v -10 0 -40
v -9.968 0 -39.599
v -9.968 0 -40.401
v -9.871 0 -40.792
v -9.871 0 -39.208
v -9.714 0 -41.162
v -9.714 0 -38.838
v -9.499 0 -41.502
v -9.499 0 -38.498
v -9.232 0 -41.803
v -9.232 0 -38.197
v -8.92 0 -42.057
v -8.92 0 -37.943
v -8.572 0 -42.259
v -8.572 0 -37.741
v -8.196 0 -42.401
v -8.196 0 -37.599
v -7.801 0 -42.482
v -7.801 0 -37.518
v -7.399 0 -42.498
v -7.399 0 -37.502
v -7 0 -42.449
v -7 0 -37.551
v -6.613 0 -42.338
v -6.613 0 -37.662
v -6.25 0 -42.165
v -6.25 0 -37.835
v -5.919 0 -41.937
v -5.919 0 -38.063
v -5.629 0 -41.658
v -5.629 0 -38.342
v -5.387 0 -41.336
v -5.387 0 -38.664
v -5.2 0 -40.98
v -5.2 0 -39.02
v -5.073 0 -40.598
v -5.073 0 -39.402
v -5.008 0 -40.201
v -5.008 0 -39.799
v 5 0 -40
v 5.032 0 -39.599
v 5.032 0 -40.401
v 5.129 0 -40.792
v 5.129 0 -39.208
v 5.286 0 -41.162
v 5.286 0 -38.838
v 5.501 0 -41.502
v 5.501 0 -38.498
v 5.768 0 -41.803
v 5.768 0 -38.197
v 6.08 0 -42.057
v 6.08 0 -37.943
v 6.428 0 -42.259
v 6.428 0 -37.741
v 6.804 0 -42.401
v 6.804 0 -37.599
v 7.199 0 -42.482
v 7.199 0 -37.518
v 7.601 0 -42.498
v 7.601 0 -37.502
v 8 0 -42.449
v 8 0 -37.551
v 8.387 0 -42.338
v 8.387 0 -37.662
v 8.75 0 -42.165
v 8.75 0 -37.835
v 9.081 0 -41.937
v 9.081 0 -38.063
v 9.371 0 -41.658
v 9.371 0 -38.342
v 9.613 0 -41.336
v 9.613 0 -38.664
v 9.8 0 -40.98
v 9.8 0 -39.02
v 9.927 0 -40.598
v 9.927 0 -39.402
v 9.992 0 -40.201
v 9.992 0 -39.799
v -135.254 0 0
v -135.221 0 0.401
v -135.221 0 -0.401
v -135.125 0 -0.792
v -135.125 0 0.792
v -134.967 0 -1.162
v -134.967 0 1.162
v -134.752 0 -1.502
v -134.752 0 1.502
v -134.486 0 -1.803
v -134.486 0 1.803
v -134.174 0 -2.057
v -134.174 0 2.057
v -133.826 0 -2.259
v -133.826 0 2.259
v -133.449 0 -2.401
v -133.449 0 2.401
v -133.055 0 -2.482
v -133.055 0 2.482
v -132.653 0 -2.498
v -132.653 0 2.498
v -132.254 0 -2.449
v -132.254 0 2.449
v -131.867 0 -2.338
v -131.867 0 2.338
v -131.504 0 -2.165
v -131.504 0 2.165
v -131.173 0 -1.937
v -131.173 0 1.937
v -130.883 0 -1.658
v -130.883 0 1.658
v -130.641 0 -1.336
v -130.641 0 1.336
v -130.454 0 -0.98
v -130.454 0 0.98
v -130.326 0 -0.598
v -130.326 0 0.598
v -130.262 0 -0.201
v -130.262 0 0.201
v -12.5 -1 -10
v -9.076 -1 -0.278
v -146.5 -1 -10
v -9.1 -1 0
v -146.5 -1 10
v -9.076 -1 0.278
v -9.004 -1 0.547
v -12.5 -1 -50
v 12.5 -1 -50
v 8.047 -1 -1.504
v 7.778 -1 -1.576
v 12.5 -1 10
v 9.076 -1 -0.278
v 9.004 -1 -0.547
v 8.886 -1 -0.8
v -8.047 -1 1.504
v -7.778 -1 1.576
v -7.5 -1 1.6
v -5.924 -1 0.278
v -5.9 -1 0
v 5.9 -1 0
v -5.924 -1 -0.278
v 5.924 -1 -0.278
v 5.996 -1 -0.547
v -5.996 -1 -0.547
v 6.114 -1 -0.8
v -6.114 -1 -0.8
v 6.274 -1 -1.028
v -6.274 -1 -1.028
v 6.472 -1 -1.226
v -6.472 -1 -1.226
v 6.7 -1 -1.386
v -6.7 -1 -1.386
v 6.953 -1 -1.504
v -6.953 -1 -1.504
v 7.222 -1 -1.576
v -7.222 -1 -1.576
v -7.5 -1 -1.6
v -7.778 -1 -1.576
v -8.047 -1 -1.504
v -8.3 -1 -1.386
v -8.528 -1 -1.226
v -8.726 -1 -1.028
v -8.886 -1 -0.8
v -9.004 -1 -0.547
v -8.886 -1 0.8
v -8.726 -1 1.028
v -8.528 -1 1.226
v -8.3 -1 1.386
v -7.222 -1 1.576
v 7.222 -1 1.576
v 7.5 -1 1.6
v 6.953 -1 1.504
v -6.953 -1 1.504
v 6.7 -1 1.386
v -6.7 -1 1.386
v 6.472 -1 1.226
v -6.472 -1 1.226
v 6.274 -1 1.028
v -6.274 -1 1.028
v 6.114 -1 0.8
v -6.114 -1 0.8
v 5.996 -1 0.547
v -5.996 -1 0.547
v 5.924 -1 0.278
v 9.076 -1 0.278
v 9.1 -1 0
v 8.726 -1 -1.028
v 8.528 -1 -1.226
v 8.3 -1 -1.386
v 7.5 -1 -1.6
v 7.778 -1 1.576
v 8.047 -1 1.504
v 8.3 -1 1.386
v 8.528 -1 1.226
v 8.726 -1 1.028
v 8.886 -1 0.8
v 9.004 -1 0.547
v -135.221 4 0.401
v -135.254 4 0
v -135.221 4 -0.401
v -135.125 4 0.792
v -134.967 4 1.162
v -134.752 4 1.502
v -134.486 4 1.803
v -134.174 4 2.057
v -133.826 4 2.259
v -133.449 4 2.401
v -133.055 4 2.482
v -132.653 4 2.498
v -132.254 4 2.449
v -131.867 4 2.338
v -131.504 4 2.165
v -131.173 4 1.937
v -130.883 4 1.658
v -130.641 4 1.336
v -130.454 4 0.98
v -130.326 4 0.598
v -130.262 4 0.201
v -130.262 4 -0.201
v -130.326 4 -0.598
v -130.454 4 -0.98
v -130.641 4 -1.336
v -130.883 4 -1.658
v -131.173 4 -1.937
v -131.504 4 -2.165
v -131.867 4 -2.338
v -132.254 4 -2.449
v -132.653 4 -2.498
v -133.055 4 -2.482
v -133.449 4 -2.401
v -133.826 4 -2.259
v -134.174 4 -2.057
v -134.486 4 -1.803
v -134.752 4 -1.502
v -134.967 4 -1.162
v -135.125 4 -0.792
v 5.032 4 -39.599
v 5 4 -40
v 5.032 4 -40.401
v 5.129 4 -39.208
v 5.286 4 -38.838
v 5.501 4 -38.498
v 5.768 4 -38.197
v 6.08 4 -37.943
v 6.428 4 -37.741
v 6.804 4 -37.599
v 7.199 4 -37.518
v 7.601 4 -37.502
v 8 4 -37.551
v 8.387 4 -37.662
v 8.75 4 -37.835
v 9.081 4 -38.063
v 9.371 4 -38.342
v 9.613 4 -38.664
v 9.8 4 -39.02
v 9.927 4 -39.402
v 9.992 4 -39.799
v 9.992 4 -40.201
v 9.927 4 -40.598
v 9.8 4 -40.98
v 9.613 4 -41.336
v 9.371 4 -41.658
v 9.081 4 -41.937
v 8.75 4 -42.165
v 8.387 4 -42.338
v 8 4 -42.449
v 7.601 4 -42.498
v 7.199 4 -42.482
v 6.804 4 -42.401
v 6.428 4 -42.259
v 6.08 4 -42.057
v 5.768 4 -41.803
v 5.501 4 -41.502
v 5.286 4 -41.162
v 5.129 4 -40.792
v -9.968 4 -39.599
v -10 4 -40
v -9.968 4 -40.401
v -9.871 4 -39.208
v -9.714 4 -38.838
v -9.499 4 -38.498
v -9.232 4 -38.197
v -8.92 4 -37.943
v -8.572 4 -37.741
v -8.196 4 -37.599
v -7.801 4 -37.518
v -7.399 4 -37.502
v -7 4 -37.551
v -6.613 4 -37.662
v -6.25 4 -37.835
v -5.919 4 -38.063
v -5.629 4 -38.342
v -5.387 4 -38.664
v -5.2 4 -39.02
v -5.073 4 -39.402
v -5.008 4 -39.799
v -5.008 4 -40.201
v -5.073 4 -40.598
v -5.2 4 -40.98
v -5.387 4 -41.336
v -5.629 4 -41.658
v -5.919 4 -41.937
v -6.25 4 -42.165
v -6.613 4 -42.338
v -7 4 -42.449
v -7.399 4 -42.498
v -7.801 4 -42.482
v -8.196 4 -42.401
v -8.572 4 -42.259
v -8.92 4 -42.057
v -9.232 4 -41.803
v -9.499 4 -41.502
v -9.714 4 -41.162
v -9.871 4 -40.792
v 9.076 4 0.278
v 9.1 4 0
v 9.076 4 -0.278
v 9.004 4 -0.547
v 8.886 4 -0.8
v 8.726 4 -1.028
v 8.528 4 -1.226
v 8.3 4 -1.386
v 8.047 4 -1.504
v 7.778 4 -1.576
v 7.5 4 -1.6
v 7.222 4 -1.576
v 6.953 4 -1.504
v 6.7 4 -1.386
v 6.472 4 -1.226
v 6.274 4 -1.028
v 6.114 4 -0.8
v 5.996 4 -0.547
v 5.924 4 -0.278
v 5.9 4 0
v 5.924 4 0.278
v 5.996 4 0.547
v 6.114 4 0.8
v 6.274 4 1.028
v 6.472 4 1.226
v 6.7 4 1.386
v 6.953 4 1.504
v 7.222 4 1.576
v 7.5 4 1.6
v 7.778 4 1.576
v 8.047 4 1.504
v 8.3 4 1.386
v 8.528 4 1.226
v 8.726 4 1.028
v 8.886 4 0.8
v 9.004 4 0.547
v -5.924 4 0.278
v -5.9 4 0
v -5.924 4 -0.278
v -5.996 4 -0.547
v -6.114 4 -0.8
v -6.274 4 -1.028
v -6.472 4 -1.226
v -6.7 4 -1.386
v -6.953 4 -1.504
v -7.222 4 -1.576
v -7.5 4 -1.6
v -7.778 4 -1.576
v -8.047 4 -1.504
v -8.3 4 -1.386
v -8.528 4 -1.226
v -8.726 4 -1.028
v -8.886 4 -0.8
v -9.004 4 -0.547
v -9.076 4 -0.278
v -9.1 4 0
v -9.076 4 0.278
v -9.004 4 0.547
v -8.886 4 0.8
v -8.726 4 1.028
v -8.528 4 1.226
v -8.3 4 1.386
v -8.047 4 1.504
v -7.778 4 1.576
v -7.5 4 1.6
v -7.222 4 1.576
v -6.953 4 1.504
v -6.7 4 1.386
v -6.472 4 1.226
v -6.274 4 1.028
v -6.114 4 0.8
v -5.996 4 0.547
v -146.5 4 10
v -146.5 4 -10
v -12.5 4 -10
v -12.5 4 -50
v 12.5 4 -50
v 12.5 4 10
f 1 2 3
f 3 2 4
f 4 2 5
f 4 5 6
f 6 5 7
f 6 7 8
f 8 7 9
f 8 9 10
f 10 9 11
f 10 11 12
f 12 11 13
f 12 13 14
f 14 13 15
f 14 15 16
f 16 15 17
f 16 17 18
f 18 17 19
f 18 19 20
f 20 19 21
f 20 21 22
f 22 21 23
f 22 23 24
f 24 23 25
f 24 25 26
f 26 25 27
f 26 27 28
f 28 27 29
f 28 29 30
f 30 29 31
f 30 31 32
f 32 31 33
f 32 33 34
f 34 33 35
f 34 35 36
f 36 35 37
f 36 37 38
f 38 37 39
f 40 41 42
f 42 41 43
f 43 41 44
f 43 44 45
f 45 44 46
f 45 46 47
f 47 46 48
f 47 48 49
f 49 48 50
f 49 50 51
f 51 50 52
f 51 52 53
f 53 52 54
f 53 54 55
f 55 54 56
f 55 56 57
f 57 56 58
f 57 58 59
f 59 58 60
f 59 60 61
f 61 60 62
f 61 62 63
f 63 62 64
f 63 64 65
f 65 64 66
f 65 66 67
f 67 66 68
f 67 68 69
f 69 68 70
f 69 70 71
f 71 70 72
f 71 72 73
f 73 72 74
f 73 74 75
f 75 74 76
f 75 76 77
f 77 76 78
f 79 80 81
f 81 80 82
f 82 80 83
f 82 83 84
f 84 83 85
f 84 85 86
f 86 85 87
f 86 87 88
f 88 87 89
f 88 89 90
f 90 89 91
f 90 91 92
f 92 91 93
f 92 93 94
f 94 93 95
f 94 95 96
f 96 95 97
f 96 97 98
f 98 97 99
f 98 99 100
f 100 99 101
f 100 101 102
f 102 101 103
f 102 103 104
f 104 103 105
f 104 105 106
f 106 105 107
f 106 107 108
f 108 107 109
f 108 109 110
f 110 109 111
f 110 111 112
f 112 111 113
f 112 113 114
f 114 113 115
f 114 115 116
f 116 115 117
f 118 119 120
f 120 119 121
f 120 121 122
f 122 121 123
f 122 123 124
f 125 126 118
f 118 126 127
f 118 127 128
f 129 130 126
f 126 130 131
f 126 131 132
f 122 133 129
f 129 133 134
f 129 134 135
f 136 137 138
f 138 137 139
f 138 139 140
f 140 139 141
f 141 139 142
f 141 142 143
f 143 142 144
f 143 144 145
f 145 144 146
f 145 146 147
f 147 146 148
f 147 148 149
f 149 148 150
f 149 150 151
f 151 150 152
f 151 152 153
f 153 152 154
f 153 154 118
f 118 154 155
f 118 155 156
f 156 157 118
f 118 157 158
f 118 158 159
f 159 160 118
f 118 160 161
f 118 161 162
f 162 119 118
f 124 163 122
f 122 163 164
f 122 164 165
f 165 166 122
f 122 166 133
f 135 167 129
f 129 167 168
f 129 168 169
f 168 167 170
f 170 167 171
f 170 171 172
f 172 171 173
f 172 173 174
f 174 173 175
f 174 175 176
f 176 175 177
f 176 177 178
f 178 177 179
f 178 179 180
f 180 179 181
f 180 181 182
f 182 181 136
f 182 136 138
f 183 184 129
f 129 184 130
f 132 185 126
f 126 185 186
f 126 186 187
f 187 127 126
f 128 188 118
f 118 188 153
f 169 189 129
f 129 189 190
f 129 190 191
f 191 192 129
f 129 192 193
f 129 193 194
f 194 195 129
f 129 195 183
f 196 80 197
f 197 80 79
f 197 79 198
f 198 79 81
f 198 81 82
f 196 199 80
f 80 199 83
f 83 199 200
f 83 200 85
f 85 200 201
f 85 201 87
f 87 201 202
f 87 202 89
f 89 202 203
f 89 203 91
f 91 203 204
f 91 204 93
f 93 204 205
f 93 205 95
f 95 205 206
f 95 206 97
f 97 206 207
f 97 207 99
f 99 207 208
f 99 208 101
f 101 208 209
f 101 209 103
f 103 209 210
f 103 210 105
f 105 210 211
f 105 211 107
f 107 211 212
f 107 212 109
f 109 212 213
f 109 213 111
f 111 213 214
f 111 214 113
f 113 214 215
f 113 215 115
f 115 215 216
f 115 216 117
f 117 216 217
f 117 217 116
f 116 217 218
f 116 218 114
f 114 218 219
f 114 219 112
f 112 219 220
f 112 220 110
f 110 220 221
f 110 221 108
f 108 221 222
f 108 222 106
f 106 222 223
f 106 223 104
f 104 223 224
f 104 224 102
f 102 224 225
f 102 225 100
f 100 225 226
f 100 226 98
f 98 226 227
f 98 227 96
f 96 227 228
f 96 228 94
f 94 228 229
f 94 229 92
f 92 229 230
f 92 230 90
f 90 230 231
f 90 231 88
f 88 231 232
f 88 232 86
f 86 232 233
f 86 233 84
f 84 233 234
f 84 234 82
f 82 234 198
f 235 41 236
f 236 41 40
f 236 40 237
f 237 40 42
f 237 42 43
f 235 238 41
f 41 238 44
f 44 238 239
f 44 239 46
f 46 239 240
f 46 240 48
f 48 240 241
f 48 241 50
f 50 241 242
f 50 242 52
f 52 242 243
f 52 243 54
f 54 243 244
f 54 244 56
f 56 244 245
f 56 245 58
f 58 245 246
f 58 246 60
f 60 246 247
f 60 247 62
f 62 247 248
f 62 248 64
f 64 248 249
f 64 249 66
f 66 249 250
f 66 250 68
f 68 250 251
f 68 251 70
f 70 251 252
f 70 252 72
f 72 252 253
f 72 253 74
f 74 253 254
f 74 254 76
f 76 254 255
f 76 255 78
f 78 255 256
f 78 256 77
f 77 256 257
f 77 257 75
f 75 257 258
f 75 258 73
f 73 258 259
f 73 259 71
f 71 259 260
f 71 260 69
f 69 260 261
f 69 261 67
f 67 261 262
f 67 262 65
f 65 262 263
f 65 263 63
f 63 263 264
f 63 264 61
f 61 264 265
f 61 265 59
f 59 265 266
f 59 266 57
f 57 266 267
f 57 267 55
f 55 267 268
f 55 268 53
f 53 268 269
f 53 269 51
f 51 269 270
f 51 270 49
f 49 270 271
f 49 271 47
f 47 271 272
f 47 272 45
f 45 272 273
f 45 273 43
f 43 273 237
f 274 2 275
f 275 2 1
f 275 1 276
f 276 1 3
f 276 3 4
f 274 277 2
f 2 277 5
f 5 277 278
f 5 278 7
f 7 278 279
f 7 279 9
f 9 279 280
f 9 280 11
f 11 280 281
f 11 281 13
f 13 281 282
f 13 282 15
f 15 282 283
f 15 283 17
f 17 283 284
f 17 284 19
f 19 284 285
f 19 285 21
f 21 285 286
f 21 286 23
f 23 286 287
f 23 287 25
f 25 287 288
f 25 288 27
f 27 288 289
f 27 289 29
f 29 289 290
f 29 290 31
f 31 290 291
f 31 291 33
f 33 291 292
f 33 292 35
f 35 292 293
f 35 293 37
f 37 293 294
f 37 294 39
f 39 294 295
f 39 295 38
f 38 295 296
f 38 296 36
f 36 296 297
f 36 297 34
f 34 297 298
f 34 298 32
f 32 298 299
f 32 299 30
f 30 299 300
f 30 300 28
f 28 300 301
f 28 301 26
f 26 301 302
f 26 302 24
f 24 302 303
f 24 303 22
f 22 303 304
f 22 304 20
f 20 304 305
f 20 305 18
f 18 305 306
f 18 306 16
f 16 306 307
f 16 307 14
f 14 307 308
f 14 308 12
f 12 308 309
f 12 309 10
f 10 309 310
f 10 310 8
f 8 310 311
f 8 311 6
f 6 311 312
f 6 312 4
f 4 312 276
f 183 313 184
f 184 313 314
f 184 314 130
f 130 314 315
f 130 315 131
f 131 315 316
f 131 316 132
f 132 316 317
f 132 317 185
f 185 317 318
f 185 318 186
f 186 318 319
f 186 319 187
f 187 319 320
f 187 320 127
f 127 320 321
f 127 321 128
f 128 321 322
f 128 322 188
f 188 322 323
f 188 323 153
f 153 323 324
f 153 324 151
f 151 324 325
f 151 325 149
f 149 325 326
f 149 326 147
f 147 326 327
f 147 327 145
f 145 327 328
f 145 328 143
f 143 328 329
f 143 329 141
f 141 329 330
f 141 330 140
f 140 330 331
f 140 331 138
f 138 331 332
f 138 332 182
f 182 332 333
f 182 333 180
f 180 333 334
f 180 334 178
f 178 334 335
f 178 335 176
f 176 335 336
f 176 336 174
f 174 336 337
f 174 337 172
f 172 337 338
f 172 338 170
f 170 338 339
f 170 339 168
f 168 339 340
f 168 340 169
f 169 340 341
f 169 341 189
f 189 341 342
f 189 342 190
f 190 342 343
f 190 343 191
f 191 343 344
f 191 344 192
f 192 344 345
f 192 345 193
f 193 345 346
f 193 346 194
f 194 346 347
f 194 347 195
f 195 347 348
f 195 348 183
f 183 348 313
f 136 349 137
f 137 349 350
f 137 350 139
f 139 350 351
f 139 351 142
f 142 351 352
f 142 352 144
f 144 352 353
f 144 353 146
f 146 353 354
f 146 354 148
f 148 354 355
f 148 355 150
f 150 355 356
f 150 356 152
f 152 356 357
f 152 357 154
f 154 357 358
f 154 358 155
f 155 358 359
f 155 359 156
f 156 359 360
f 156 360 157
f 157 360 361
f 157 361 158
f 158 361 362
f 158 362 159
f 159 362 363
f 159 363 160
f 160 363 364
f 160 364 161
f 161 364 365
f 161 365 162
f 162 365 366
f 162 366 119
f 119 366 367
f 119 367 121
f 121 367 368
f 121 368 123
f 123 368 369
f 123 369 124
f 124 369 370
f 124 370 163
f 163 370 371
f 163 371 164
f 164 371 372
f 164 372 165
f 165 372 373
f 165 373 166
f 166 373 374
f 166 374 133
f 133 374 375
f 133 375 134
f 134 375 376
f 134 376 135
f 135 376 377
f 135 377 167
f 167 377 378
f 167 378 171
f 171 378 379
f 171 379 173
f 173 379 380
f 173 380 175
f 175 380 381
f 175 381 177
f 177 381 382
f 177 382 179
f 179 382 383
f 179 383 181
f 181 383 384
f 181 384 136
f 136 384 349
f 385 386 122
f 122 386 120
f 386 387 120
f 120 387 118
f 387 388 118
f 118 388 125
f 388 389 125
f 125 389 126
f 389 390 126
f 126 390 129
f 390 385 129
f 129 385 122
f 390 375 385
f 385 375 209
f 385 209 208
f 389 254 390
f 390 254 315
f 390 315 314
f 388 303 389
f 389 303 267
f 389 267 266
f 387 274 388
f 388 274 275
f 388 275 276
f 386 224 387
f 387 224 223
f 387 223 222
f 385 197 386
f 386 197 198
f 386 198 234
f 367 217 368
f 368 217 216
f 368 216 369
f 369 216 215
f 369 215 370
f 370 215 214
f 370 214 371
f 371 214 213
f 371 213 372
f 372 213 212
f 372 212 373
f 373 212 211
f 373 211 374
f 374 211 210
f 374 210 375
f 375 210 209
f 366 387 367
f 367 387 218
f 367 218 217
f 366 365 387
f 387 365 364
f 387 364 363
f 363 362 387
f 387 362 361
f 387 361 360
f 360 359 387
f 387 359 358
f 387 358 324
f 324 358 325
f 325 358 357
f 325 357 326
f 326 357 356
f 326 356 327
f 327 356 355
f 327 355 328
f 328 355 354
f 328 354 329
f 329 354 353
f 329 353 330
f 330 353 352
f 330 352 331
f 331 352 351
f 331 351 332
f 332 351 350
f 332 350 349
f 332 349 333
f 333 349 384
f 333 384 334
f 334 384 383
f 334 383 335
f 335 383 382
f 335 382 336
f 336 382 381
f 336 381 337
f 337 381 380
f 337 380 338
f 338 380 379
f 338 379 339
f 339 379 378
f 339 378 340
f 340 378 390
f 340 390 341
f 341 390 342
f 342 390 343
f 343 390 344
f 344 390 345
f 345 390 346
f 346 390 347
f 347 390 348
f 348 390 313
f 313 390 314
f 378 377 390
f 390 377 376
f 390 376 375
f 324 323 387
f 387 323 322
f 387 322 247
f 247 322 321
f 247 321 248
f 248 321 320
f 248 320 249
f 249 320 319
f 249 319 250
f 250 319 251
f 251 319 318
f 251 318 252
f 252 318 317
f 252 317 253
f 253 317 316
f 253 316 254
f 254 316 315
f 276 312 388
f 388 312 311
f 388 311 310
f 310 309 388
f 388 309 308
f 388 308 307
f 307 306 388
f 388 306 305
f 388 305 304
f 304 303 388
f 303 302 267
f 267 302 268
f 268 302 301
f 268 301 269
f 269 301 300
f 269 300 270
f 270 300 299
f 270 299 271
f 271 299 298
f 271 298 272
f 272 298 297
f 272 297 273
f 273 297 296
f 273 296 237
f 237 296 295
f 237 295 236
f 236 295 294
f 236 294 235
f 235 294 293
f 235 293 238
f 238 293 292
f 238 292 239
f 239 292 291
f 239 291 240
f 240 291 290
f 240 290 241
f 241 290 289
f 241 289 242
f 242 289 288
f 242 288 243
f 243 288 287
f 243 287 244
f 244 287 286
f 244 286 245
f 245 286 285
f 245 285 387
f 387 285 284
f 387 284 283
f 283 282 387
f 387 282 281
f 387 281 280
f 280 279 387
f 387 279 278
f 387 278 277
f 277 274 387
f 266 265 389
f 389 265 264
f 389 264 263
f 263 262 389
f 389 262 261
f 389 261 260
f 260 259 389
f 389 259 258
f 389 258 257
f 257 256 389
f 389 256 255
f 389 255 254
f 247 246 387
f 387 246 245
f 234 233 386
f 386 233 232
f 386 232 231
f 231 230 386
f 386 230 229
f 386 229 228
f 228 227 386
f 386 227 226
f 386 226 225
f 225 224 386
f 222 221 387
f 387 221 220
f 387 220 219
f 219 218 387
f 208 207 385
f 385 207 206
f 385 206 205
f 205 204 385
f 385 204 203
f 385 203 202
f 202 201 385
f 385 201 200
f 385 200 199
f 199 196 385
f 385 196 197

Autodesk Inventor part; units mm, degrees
ref_plane "YZ Plane" through (0, 0, 0) normal (1, 0, 0) x (0, 1, 0)
ref_plane "XZ Plane" through (0, 0, 0) normal (0, 1, 0) x (-1, 0, 0)
ref_plane "XY Plane" through (0, 0, 0) normal (0, 0, 1) x (1, 0, 0)
sketch "Sketch1" plane through (0, 0, 0) normal (0, 1, 0) x (-1, 0, 0)
  line L0 (12.5, -50) -> (-12.5, -50)
  line L1 (-12.5, -50) -> (-12.5, 10)
  line L2 (-12.5, 10) -> (12.5, 10)
  line L3 (12.5, 10) -> (12.5, -50)
  line L4 (12.5, 0) -> (-12.5, 0) construction
  line L5 (0, -50) -> (0, 10) construction
  circle A0 centre (7.5, 0) radius 1.6
  line L6 (12.5, 10) -> (146.5, 10)
  line L7 (146.5, 10) -> (146.5, -10)
  line L8 (146.5, -10) -> (12.5, -10)
  line L9 (12.5, -10) -> (12.5, 10)
  line L10 (146.5, 0) -> (12.5, 0) construction
  circle A1 centre (132.7538, 0) radius 2.5
  circle A2 centre (-7.5, 0) radius 1.6
  line L11 (12.5, -40) -> (-12.5, -40) construction
  circle A3 centre (7.5, -40) radius 2.5
  circle A4 centre (-7.5, -40) radius 2.5
  point P0 (0, 0)
  point P1 (0, 0)
  point P2 (12.5, -10)
  dimension "d0" = 3.2
  dimension "d1" = 15
  dimension "d3" = 10
  dimension "d4" = 60
  dimension "d5" = 25
  dimension "d6" = 134
  dimension "d7" = 20
  dimension "d8" = 5
  dimension "d9" = 10
  dimension "d10" = 5
  dimension "d11" = 15
extrude "Extrusion1" add sketch "Sketch1" along normal blind 4
sketch "Sketch2" plane through (0, 0, 0) normal (0, -1, 0) x (1, 0, 0)
  line L0 (-146.5, 10) -> (12.5, 10) projected
  line L1 (-146.5, -10) -> (-146.5, 10) projected
  line L2 (-12.5, -10) -> (-146.5, -10) projected
  line L3 (-12.5, -50) -> (-12.5, -10) projected
  line L4 (12.5, -50) -> (-12.5, -50) projected
  line L5 (12.5, 10) -> (12.5, -50) projected
  circle A0 centre (-7.5, 0) radius 1.6 projected
  circle A1 centre (7.5, 0) radius 1.6 projected
  circle A2 centre (-7.5, -40) radius 2.5 projected
  circle A3 centre (7.5, -40) radius 2.5 projected
  circle A4 centre (-132.7538, 0) radius 2.5 projected
extrude "Extrusion2" add sketch "Sketch2" along normal blind 1 contours L0 L5 L4 L3 L2 L1 | A2 | A3 | A4
properties part number "y_axis_extensor"
